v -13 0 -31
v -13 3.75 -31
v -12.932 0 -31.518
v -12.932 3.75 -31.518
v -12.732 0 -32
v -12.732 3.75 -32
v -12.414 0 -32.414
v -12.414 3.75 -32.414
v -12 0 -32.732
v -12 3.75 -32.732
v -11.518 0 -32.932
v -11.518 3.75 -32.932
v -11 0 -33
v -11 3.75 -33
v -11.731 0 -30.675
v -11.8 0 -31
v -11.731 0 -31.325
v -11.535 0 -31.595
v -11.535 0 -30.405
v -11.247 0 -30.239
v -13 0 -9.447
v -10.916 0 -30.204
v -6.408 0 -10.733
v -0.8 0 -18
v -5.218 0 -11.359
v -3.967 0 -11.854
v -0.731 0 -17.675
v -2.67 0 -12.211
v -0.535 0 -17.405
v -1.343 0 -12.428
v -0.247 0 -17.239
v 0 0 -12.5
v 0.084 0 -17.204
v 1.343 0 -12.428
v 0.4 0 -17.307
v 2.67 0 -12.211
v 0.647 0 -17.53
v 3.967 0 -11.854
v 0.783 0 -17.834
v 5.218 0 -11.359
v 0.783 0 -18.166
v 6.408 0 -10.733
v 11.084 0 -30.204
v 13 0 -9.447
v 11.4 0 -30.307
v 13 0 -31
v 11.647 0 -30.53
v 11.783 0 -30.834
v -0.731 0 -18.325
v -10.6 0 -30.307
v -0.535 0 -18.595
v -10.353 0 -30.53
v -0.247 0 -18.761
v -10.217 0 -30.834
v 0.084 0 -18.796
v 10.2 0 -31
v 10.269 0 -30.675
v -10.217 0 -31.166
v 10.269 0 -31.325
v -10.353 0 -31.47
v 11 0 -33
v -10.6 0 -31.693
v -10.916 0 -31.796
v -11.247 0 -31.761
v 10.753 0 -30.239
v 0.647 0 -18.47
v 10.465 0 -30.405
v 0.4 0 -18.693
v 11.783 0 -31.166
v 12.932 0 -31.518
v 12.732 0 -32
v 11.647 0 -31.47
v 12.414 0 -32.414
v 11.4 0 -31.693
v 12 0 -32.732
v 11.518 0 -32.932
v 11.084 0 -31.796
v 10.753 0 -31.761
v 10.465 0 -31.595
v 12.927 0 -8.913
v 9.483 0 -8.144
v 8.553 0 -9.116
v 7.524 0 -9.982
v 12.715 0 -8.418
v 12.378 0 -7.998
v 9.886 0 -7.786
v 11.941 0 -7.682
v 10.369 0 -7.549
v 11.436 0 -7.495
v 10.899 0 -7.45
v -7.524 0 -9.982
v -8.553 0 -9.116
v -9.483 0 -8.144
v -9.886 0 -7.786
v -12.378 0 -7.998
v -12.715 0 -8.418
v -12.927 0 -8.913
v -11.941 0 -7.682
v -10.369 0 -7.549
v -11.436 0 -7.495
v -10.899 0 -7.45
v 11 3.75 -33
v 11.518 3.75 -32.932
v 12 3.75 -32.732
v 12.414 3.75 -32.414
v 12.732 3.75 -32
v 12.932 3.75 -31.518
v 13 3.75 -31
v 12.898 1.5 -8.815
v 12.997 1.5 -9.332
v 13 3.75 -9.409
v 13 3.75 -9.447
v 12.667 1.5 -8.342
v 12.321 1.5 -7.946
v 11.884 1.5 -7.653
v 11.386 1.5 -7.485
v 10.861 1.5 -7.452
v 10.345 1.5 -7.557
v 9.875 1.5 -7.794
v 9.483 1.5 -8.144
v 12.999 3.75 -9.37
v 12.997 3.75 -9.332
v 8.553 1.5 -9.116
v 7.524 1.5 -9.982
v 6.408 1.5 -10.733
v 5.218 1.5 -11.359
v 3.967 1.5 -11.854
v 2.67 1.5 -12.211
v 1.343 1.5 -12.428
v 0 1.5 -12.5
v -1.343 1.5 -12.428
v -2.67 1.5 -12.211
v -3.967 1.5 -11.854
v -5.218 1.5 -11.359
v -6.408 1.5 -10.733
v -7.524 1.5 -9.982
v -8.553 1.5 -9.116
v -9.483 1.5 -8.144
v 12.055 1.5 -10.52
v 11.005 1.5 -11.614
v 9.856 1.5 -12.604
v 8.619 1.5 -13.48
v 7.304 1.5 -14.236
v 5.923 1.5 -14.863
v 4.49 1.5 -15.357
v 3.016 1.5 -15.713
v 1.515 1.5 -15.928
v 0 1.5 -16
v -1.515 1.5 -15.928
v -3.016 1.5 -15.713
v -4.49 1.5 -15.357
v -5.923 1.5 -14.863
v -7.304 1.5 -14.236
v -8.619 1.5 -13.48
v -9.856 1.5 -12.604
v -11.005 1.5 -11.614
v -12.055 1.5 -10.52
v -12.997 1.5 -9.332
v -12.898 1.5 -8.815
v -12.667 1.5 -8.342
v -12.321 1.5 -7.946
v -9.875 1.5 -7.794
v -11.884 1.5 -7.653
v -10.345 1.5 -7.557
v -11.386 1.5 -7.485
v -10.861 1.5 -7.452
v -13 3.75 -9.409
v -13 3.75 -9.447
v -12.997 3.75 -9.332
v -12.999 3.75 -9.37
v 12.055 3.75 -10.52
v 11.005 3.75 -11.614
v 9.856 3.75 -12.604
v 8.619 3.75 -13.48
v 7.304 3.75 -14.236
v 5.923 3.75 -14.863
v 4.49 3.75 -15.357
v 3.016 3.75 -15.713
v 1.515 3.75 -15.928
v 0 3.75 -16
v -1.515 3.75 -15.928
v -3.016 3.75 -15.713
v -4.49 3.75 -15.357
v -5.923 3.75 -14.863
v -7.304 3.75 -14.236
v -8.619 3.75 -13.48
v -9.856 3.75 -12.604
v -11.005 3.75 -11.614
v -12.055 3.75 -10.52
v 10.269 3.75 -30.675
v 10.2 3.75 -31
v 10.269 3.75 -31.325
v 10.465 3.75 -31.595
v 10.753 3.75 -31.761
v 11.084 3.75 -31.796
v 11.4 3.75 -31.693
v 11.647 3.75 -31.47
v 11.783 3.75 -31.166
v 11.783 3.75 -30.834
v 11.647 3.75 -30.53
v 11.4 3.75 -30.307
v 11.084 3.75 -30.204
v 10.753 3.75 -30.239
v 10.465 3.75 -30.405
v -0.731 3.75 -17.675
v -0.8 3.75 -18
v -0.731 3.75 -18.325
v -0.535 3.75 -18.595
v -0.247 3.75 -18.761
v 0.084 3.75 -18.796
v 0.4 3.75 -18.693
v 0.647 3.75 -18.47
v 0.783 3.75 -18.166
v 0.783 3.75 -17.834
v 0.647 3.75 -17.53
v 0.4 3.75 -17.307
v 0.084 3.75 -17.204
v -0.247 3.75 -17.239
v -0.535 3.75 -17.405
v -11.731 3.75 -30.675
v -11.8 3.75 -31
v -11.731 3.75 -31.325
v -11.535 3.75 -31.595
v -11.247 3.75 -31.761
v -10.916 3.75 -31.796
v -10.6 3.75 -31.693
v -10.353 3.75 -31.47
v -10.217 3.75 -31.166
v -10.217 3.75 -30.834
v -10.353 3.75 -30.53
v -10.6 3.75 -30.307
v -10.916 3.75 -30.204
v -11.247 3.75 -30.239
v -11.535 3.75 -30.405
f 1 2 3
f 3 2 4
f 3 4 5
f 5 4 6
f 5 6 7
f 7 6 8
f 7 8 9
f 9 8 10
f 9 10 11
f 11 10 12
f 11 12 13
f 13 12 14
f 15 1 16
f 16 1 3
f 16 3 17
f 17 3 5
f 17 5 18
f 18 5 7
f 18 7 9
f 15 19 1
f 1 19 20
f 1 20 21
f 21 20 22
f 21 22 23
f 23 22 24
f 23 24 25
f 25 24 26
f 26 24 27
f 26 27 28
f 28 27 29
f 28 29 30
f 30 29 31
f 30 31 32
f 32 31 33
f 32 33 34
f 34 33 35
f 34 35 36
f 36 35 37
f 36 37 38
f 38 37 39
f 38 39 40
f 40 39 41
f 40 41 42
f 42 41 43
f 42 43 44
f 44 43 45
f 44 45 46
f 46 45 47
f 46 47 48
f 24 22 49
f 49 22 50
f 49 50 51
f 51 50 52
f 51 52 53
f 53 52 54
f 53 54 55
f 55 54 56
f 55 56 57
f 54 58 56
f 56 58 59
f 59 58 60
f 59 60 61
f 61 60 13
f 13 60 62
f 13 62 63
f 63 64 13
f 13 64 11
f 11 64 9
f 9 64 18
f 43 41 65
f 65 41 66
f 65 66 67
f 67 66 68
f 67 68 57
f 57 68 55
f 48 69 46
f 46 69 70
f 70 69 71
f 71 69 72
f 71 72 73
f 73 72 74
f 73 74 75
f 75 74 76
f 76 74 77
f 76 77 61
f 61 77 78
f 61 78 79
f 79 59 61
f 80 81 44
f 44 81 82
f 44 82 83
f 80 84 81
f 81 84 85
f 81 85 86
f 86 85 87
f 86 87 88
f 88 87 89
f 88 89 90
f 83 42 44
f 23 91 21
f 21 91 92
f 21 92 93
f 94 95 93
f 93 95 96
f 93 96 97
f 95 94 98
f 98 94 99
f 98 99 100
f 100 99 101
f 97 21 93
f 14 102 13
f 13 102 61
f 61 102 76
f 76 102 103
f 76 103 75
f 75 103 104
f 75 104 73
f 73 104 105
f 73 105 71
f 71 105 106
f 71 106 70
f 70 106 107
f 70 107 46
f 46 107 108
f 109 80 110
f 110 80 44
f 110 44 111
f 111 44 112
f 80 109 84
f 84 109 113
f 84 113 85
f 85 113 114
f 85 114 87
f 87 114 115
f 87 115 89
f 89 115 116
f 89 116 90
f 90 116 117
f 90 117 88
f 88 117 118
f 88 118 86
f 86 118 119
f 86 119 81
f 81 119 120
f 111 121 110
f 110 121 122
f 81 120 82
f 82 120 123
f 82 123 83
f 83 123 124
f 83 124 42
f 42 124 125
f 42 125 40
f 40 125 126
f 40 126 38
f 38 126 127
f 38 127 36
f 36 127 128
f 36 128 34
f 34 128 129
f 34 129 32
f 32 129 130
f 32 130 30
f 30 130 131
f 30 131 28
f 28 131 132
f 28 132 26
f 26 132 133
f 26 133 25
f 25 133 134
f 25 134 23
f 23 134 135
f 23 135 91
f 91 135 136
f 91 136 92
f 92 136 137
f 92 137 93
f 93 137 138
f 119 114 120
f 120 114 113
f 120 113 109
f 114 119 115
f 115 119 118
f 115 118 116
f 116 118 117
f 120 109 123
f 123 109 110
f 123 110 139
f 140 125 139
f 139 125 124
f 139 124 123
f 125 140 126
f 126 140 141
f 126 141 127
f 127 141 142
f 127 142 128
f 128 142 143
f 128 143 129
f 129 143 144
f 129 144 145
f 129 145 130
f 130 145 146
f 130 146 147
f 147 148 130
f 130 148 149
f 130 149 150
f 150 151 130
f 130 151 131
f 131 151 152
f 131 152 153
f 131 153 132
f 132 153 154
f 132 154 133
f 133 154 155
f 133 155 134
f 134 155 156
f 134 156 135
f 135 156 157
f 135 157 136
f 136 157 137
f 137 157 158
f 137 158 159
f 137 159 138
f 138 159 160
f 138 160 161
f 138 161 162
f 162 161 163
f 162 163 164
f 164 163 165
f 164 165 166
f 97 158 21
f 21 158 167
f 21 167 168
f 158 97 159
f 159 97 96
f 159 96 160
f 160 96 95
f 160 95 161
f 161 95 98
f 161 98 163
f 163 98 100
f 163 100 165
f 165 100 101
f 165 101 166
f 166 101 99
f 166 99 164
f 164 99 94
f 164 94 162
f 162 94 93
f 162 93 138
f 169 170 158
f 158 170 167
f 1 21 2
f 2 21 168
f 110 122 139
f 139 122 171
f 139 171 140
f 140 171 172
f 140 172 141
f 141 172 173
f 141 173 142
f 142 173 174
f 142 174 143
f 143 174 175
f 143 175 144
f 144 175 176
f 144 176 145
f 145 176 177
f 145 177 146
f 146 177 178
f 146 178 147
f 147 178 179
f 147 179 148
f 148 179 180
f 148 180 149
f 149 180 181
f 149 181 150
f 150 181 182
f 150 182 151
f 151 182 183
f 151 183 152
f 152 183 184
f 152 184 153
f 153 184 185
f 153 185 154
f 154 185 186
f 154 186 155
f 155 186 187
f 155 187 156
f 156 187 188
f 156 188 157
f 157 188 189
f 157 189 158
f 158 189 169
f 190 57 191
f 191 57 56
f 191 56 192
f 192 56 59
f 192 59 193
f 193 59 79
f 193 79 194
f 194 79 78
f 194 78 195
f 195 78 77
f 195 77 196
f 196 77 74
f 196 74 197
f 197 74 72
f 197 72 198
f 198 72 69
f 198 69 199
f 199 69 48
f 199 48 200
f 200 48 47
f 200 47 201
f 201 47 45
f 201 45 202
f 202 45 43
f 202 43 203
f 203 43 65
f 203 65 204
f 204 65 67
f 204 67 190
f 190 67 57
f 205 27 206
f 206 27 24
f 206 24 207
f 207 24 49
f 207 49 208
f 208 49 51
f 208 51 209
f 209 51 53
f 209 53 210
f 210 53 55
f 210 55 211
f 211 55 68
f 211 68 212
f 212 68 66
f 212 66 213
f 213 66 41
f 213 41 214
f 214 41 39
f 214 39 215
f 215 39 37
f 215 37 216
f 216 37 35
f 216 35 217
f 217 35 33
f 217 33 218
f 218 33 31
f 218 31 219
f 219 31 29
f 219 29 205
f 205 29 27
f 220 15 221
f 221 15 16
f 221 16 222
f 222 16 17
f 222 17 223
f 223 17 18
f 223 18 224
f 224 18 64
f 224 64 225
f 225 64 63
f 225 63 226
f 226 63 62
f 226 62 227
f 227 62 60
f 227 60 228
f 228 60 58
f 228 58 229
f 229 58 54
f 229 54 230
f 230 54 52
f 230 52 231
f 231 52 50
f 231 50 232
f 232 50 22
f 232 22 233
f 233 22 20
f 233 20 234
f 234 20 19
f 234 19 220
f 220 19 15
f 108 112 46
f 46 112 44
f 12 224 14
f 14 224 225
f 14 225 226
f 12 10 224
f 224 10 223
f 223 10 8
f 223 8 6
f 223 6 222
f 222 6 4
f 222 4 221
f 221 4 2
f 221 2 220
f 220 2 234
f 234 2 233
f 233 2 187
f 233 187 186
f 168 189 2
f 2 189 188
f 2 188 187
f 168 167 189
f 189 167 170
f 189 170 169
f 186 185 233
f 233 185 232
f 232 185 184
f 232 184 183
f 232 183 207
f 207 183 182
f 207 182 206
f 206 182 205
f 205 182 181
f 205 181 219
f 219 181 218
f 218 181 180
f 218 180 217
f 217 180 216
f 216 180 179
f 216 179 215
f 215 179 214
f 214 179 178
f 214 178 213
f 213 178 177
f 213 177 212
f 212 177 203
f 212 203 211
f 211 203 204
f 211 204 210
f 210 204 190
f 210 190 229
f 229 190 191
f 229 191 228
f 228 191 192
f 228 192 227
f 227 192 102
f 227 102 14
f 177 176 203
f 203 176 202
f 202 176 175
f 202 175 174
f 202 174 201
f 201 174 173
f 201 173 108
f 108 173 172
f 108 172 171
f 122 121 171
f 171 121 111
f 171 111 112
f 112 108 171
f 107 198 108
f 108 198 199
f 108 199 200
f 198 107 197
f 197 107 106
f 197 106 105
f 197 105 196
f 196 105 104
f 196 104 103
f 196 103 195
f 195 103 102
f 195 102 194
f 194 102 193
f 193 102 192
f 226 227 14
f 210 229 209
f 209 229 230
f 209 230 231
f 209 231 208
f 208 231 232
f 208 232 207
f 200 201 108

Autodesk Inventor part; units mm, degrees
ref_plane "YZ Plane" through (0, 0, 0) normal (1, 0, 0) x (0, 1, 0)
ref_plane "XZ Plane" through (0, 0, 0) normal (0, 1, 0) x (-1, 0, 0)
ref_plane "XY Plane" through (0, 0, 0) normal (0, 0, 1) x (1, 0, 0)
sketch "スケッチ1" plane through (0, 0, 0) normal (0, 1, 0) x (-1, 0, 0)
  circle A0 centre (0, 0) radius 12.5
  line L0 (13, 0) -> (-13, 0)
  line L1 (-13, 0) -> (-13, -33)
  line L2 (-13, -33) -> (13, -33)
  line L3 (13, -33) -> (13, 0)
  circle A1 centre (0, 0) radius 16
  circle A2 centre (11, -31) radius 0.8
  circle A3 centre (-11, -31) radius 0.8
  circle A4 centre (0, -18) radius 0.8
  line L4 (0, -42.8) -> (0, 25.8) projected
  point P0 (13, -9.3274)
  point P1 (-13, -9.3274)
  point P2 (12.5, 0)
  point P3 (-12.5, 0)
  dimension "d0" = 25
  dimension "d1" = 26
  dimension "d2" = 33
  dimension "d3" = 32
  dimension "d9" = 1.6
  dimension "d10" = 1.6
  dimension "d11" = 2
  dimension "d12" = 2
  dimension "d13" = 2
  dimension "d14" = 2
  dimension "d15" = 1.6
  dimension "d16" = 15
extrude "押し出し1" add sketch "スケッチ1" along normal blind 3.75 contours L4 A4 L2 L1 A1 | A1 L3 L2 L4 A4
extrude "押し出し2" add sketch "スケッチ1" along normal blind 1.5 contours L0 L3 A1 L4 A0 | L4 A1 L1 L0 A0 picked at (2.1799, -14.5796) picked at (-2.1799, -14.5796)
fillet "フィレット1" radius 2 6 edges at (-13, 0.75, 0) (-12.5, 0.75, 0) (13, 0.75, 0) (12.5, 0.75, 0) (13, 1.875, -33) (-13, 1.875, -33)
properties part number "waist_cover"
